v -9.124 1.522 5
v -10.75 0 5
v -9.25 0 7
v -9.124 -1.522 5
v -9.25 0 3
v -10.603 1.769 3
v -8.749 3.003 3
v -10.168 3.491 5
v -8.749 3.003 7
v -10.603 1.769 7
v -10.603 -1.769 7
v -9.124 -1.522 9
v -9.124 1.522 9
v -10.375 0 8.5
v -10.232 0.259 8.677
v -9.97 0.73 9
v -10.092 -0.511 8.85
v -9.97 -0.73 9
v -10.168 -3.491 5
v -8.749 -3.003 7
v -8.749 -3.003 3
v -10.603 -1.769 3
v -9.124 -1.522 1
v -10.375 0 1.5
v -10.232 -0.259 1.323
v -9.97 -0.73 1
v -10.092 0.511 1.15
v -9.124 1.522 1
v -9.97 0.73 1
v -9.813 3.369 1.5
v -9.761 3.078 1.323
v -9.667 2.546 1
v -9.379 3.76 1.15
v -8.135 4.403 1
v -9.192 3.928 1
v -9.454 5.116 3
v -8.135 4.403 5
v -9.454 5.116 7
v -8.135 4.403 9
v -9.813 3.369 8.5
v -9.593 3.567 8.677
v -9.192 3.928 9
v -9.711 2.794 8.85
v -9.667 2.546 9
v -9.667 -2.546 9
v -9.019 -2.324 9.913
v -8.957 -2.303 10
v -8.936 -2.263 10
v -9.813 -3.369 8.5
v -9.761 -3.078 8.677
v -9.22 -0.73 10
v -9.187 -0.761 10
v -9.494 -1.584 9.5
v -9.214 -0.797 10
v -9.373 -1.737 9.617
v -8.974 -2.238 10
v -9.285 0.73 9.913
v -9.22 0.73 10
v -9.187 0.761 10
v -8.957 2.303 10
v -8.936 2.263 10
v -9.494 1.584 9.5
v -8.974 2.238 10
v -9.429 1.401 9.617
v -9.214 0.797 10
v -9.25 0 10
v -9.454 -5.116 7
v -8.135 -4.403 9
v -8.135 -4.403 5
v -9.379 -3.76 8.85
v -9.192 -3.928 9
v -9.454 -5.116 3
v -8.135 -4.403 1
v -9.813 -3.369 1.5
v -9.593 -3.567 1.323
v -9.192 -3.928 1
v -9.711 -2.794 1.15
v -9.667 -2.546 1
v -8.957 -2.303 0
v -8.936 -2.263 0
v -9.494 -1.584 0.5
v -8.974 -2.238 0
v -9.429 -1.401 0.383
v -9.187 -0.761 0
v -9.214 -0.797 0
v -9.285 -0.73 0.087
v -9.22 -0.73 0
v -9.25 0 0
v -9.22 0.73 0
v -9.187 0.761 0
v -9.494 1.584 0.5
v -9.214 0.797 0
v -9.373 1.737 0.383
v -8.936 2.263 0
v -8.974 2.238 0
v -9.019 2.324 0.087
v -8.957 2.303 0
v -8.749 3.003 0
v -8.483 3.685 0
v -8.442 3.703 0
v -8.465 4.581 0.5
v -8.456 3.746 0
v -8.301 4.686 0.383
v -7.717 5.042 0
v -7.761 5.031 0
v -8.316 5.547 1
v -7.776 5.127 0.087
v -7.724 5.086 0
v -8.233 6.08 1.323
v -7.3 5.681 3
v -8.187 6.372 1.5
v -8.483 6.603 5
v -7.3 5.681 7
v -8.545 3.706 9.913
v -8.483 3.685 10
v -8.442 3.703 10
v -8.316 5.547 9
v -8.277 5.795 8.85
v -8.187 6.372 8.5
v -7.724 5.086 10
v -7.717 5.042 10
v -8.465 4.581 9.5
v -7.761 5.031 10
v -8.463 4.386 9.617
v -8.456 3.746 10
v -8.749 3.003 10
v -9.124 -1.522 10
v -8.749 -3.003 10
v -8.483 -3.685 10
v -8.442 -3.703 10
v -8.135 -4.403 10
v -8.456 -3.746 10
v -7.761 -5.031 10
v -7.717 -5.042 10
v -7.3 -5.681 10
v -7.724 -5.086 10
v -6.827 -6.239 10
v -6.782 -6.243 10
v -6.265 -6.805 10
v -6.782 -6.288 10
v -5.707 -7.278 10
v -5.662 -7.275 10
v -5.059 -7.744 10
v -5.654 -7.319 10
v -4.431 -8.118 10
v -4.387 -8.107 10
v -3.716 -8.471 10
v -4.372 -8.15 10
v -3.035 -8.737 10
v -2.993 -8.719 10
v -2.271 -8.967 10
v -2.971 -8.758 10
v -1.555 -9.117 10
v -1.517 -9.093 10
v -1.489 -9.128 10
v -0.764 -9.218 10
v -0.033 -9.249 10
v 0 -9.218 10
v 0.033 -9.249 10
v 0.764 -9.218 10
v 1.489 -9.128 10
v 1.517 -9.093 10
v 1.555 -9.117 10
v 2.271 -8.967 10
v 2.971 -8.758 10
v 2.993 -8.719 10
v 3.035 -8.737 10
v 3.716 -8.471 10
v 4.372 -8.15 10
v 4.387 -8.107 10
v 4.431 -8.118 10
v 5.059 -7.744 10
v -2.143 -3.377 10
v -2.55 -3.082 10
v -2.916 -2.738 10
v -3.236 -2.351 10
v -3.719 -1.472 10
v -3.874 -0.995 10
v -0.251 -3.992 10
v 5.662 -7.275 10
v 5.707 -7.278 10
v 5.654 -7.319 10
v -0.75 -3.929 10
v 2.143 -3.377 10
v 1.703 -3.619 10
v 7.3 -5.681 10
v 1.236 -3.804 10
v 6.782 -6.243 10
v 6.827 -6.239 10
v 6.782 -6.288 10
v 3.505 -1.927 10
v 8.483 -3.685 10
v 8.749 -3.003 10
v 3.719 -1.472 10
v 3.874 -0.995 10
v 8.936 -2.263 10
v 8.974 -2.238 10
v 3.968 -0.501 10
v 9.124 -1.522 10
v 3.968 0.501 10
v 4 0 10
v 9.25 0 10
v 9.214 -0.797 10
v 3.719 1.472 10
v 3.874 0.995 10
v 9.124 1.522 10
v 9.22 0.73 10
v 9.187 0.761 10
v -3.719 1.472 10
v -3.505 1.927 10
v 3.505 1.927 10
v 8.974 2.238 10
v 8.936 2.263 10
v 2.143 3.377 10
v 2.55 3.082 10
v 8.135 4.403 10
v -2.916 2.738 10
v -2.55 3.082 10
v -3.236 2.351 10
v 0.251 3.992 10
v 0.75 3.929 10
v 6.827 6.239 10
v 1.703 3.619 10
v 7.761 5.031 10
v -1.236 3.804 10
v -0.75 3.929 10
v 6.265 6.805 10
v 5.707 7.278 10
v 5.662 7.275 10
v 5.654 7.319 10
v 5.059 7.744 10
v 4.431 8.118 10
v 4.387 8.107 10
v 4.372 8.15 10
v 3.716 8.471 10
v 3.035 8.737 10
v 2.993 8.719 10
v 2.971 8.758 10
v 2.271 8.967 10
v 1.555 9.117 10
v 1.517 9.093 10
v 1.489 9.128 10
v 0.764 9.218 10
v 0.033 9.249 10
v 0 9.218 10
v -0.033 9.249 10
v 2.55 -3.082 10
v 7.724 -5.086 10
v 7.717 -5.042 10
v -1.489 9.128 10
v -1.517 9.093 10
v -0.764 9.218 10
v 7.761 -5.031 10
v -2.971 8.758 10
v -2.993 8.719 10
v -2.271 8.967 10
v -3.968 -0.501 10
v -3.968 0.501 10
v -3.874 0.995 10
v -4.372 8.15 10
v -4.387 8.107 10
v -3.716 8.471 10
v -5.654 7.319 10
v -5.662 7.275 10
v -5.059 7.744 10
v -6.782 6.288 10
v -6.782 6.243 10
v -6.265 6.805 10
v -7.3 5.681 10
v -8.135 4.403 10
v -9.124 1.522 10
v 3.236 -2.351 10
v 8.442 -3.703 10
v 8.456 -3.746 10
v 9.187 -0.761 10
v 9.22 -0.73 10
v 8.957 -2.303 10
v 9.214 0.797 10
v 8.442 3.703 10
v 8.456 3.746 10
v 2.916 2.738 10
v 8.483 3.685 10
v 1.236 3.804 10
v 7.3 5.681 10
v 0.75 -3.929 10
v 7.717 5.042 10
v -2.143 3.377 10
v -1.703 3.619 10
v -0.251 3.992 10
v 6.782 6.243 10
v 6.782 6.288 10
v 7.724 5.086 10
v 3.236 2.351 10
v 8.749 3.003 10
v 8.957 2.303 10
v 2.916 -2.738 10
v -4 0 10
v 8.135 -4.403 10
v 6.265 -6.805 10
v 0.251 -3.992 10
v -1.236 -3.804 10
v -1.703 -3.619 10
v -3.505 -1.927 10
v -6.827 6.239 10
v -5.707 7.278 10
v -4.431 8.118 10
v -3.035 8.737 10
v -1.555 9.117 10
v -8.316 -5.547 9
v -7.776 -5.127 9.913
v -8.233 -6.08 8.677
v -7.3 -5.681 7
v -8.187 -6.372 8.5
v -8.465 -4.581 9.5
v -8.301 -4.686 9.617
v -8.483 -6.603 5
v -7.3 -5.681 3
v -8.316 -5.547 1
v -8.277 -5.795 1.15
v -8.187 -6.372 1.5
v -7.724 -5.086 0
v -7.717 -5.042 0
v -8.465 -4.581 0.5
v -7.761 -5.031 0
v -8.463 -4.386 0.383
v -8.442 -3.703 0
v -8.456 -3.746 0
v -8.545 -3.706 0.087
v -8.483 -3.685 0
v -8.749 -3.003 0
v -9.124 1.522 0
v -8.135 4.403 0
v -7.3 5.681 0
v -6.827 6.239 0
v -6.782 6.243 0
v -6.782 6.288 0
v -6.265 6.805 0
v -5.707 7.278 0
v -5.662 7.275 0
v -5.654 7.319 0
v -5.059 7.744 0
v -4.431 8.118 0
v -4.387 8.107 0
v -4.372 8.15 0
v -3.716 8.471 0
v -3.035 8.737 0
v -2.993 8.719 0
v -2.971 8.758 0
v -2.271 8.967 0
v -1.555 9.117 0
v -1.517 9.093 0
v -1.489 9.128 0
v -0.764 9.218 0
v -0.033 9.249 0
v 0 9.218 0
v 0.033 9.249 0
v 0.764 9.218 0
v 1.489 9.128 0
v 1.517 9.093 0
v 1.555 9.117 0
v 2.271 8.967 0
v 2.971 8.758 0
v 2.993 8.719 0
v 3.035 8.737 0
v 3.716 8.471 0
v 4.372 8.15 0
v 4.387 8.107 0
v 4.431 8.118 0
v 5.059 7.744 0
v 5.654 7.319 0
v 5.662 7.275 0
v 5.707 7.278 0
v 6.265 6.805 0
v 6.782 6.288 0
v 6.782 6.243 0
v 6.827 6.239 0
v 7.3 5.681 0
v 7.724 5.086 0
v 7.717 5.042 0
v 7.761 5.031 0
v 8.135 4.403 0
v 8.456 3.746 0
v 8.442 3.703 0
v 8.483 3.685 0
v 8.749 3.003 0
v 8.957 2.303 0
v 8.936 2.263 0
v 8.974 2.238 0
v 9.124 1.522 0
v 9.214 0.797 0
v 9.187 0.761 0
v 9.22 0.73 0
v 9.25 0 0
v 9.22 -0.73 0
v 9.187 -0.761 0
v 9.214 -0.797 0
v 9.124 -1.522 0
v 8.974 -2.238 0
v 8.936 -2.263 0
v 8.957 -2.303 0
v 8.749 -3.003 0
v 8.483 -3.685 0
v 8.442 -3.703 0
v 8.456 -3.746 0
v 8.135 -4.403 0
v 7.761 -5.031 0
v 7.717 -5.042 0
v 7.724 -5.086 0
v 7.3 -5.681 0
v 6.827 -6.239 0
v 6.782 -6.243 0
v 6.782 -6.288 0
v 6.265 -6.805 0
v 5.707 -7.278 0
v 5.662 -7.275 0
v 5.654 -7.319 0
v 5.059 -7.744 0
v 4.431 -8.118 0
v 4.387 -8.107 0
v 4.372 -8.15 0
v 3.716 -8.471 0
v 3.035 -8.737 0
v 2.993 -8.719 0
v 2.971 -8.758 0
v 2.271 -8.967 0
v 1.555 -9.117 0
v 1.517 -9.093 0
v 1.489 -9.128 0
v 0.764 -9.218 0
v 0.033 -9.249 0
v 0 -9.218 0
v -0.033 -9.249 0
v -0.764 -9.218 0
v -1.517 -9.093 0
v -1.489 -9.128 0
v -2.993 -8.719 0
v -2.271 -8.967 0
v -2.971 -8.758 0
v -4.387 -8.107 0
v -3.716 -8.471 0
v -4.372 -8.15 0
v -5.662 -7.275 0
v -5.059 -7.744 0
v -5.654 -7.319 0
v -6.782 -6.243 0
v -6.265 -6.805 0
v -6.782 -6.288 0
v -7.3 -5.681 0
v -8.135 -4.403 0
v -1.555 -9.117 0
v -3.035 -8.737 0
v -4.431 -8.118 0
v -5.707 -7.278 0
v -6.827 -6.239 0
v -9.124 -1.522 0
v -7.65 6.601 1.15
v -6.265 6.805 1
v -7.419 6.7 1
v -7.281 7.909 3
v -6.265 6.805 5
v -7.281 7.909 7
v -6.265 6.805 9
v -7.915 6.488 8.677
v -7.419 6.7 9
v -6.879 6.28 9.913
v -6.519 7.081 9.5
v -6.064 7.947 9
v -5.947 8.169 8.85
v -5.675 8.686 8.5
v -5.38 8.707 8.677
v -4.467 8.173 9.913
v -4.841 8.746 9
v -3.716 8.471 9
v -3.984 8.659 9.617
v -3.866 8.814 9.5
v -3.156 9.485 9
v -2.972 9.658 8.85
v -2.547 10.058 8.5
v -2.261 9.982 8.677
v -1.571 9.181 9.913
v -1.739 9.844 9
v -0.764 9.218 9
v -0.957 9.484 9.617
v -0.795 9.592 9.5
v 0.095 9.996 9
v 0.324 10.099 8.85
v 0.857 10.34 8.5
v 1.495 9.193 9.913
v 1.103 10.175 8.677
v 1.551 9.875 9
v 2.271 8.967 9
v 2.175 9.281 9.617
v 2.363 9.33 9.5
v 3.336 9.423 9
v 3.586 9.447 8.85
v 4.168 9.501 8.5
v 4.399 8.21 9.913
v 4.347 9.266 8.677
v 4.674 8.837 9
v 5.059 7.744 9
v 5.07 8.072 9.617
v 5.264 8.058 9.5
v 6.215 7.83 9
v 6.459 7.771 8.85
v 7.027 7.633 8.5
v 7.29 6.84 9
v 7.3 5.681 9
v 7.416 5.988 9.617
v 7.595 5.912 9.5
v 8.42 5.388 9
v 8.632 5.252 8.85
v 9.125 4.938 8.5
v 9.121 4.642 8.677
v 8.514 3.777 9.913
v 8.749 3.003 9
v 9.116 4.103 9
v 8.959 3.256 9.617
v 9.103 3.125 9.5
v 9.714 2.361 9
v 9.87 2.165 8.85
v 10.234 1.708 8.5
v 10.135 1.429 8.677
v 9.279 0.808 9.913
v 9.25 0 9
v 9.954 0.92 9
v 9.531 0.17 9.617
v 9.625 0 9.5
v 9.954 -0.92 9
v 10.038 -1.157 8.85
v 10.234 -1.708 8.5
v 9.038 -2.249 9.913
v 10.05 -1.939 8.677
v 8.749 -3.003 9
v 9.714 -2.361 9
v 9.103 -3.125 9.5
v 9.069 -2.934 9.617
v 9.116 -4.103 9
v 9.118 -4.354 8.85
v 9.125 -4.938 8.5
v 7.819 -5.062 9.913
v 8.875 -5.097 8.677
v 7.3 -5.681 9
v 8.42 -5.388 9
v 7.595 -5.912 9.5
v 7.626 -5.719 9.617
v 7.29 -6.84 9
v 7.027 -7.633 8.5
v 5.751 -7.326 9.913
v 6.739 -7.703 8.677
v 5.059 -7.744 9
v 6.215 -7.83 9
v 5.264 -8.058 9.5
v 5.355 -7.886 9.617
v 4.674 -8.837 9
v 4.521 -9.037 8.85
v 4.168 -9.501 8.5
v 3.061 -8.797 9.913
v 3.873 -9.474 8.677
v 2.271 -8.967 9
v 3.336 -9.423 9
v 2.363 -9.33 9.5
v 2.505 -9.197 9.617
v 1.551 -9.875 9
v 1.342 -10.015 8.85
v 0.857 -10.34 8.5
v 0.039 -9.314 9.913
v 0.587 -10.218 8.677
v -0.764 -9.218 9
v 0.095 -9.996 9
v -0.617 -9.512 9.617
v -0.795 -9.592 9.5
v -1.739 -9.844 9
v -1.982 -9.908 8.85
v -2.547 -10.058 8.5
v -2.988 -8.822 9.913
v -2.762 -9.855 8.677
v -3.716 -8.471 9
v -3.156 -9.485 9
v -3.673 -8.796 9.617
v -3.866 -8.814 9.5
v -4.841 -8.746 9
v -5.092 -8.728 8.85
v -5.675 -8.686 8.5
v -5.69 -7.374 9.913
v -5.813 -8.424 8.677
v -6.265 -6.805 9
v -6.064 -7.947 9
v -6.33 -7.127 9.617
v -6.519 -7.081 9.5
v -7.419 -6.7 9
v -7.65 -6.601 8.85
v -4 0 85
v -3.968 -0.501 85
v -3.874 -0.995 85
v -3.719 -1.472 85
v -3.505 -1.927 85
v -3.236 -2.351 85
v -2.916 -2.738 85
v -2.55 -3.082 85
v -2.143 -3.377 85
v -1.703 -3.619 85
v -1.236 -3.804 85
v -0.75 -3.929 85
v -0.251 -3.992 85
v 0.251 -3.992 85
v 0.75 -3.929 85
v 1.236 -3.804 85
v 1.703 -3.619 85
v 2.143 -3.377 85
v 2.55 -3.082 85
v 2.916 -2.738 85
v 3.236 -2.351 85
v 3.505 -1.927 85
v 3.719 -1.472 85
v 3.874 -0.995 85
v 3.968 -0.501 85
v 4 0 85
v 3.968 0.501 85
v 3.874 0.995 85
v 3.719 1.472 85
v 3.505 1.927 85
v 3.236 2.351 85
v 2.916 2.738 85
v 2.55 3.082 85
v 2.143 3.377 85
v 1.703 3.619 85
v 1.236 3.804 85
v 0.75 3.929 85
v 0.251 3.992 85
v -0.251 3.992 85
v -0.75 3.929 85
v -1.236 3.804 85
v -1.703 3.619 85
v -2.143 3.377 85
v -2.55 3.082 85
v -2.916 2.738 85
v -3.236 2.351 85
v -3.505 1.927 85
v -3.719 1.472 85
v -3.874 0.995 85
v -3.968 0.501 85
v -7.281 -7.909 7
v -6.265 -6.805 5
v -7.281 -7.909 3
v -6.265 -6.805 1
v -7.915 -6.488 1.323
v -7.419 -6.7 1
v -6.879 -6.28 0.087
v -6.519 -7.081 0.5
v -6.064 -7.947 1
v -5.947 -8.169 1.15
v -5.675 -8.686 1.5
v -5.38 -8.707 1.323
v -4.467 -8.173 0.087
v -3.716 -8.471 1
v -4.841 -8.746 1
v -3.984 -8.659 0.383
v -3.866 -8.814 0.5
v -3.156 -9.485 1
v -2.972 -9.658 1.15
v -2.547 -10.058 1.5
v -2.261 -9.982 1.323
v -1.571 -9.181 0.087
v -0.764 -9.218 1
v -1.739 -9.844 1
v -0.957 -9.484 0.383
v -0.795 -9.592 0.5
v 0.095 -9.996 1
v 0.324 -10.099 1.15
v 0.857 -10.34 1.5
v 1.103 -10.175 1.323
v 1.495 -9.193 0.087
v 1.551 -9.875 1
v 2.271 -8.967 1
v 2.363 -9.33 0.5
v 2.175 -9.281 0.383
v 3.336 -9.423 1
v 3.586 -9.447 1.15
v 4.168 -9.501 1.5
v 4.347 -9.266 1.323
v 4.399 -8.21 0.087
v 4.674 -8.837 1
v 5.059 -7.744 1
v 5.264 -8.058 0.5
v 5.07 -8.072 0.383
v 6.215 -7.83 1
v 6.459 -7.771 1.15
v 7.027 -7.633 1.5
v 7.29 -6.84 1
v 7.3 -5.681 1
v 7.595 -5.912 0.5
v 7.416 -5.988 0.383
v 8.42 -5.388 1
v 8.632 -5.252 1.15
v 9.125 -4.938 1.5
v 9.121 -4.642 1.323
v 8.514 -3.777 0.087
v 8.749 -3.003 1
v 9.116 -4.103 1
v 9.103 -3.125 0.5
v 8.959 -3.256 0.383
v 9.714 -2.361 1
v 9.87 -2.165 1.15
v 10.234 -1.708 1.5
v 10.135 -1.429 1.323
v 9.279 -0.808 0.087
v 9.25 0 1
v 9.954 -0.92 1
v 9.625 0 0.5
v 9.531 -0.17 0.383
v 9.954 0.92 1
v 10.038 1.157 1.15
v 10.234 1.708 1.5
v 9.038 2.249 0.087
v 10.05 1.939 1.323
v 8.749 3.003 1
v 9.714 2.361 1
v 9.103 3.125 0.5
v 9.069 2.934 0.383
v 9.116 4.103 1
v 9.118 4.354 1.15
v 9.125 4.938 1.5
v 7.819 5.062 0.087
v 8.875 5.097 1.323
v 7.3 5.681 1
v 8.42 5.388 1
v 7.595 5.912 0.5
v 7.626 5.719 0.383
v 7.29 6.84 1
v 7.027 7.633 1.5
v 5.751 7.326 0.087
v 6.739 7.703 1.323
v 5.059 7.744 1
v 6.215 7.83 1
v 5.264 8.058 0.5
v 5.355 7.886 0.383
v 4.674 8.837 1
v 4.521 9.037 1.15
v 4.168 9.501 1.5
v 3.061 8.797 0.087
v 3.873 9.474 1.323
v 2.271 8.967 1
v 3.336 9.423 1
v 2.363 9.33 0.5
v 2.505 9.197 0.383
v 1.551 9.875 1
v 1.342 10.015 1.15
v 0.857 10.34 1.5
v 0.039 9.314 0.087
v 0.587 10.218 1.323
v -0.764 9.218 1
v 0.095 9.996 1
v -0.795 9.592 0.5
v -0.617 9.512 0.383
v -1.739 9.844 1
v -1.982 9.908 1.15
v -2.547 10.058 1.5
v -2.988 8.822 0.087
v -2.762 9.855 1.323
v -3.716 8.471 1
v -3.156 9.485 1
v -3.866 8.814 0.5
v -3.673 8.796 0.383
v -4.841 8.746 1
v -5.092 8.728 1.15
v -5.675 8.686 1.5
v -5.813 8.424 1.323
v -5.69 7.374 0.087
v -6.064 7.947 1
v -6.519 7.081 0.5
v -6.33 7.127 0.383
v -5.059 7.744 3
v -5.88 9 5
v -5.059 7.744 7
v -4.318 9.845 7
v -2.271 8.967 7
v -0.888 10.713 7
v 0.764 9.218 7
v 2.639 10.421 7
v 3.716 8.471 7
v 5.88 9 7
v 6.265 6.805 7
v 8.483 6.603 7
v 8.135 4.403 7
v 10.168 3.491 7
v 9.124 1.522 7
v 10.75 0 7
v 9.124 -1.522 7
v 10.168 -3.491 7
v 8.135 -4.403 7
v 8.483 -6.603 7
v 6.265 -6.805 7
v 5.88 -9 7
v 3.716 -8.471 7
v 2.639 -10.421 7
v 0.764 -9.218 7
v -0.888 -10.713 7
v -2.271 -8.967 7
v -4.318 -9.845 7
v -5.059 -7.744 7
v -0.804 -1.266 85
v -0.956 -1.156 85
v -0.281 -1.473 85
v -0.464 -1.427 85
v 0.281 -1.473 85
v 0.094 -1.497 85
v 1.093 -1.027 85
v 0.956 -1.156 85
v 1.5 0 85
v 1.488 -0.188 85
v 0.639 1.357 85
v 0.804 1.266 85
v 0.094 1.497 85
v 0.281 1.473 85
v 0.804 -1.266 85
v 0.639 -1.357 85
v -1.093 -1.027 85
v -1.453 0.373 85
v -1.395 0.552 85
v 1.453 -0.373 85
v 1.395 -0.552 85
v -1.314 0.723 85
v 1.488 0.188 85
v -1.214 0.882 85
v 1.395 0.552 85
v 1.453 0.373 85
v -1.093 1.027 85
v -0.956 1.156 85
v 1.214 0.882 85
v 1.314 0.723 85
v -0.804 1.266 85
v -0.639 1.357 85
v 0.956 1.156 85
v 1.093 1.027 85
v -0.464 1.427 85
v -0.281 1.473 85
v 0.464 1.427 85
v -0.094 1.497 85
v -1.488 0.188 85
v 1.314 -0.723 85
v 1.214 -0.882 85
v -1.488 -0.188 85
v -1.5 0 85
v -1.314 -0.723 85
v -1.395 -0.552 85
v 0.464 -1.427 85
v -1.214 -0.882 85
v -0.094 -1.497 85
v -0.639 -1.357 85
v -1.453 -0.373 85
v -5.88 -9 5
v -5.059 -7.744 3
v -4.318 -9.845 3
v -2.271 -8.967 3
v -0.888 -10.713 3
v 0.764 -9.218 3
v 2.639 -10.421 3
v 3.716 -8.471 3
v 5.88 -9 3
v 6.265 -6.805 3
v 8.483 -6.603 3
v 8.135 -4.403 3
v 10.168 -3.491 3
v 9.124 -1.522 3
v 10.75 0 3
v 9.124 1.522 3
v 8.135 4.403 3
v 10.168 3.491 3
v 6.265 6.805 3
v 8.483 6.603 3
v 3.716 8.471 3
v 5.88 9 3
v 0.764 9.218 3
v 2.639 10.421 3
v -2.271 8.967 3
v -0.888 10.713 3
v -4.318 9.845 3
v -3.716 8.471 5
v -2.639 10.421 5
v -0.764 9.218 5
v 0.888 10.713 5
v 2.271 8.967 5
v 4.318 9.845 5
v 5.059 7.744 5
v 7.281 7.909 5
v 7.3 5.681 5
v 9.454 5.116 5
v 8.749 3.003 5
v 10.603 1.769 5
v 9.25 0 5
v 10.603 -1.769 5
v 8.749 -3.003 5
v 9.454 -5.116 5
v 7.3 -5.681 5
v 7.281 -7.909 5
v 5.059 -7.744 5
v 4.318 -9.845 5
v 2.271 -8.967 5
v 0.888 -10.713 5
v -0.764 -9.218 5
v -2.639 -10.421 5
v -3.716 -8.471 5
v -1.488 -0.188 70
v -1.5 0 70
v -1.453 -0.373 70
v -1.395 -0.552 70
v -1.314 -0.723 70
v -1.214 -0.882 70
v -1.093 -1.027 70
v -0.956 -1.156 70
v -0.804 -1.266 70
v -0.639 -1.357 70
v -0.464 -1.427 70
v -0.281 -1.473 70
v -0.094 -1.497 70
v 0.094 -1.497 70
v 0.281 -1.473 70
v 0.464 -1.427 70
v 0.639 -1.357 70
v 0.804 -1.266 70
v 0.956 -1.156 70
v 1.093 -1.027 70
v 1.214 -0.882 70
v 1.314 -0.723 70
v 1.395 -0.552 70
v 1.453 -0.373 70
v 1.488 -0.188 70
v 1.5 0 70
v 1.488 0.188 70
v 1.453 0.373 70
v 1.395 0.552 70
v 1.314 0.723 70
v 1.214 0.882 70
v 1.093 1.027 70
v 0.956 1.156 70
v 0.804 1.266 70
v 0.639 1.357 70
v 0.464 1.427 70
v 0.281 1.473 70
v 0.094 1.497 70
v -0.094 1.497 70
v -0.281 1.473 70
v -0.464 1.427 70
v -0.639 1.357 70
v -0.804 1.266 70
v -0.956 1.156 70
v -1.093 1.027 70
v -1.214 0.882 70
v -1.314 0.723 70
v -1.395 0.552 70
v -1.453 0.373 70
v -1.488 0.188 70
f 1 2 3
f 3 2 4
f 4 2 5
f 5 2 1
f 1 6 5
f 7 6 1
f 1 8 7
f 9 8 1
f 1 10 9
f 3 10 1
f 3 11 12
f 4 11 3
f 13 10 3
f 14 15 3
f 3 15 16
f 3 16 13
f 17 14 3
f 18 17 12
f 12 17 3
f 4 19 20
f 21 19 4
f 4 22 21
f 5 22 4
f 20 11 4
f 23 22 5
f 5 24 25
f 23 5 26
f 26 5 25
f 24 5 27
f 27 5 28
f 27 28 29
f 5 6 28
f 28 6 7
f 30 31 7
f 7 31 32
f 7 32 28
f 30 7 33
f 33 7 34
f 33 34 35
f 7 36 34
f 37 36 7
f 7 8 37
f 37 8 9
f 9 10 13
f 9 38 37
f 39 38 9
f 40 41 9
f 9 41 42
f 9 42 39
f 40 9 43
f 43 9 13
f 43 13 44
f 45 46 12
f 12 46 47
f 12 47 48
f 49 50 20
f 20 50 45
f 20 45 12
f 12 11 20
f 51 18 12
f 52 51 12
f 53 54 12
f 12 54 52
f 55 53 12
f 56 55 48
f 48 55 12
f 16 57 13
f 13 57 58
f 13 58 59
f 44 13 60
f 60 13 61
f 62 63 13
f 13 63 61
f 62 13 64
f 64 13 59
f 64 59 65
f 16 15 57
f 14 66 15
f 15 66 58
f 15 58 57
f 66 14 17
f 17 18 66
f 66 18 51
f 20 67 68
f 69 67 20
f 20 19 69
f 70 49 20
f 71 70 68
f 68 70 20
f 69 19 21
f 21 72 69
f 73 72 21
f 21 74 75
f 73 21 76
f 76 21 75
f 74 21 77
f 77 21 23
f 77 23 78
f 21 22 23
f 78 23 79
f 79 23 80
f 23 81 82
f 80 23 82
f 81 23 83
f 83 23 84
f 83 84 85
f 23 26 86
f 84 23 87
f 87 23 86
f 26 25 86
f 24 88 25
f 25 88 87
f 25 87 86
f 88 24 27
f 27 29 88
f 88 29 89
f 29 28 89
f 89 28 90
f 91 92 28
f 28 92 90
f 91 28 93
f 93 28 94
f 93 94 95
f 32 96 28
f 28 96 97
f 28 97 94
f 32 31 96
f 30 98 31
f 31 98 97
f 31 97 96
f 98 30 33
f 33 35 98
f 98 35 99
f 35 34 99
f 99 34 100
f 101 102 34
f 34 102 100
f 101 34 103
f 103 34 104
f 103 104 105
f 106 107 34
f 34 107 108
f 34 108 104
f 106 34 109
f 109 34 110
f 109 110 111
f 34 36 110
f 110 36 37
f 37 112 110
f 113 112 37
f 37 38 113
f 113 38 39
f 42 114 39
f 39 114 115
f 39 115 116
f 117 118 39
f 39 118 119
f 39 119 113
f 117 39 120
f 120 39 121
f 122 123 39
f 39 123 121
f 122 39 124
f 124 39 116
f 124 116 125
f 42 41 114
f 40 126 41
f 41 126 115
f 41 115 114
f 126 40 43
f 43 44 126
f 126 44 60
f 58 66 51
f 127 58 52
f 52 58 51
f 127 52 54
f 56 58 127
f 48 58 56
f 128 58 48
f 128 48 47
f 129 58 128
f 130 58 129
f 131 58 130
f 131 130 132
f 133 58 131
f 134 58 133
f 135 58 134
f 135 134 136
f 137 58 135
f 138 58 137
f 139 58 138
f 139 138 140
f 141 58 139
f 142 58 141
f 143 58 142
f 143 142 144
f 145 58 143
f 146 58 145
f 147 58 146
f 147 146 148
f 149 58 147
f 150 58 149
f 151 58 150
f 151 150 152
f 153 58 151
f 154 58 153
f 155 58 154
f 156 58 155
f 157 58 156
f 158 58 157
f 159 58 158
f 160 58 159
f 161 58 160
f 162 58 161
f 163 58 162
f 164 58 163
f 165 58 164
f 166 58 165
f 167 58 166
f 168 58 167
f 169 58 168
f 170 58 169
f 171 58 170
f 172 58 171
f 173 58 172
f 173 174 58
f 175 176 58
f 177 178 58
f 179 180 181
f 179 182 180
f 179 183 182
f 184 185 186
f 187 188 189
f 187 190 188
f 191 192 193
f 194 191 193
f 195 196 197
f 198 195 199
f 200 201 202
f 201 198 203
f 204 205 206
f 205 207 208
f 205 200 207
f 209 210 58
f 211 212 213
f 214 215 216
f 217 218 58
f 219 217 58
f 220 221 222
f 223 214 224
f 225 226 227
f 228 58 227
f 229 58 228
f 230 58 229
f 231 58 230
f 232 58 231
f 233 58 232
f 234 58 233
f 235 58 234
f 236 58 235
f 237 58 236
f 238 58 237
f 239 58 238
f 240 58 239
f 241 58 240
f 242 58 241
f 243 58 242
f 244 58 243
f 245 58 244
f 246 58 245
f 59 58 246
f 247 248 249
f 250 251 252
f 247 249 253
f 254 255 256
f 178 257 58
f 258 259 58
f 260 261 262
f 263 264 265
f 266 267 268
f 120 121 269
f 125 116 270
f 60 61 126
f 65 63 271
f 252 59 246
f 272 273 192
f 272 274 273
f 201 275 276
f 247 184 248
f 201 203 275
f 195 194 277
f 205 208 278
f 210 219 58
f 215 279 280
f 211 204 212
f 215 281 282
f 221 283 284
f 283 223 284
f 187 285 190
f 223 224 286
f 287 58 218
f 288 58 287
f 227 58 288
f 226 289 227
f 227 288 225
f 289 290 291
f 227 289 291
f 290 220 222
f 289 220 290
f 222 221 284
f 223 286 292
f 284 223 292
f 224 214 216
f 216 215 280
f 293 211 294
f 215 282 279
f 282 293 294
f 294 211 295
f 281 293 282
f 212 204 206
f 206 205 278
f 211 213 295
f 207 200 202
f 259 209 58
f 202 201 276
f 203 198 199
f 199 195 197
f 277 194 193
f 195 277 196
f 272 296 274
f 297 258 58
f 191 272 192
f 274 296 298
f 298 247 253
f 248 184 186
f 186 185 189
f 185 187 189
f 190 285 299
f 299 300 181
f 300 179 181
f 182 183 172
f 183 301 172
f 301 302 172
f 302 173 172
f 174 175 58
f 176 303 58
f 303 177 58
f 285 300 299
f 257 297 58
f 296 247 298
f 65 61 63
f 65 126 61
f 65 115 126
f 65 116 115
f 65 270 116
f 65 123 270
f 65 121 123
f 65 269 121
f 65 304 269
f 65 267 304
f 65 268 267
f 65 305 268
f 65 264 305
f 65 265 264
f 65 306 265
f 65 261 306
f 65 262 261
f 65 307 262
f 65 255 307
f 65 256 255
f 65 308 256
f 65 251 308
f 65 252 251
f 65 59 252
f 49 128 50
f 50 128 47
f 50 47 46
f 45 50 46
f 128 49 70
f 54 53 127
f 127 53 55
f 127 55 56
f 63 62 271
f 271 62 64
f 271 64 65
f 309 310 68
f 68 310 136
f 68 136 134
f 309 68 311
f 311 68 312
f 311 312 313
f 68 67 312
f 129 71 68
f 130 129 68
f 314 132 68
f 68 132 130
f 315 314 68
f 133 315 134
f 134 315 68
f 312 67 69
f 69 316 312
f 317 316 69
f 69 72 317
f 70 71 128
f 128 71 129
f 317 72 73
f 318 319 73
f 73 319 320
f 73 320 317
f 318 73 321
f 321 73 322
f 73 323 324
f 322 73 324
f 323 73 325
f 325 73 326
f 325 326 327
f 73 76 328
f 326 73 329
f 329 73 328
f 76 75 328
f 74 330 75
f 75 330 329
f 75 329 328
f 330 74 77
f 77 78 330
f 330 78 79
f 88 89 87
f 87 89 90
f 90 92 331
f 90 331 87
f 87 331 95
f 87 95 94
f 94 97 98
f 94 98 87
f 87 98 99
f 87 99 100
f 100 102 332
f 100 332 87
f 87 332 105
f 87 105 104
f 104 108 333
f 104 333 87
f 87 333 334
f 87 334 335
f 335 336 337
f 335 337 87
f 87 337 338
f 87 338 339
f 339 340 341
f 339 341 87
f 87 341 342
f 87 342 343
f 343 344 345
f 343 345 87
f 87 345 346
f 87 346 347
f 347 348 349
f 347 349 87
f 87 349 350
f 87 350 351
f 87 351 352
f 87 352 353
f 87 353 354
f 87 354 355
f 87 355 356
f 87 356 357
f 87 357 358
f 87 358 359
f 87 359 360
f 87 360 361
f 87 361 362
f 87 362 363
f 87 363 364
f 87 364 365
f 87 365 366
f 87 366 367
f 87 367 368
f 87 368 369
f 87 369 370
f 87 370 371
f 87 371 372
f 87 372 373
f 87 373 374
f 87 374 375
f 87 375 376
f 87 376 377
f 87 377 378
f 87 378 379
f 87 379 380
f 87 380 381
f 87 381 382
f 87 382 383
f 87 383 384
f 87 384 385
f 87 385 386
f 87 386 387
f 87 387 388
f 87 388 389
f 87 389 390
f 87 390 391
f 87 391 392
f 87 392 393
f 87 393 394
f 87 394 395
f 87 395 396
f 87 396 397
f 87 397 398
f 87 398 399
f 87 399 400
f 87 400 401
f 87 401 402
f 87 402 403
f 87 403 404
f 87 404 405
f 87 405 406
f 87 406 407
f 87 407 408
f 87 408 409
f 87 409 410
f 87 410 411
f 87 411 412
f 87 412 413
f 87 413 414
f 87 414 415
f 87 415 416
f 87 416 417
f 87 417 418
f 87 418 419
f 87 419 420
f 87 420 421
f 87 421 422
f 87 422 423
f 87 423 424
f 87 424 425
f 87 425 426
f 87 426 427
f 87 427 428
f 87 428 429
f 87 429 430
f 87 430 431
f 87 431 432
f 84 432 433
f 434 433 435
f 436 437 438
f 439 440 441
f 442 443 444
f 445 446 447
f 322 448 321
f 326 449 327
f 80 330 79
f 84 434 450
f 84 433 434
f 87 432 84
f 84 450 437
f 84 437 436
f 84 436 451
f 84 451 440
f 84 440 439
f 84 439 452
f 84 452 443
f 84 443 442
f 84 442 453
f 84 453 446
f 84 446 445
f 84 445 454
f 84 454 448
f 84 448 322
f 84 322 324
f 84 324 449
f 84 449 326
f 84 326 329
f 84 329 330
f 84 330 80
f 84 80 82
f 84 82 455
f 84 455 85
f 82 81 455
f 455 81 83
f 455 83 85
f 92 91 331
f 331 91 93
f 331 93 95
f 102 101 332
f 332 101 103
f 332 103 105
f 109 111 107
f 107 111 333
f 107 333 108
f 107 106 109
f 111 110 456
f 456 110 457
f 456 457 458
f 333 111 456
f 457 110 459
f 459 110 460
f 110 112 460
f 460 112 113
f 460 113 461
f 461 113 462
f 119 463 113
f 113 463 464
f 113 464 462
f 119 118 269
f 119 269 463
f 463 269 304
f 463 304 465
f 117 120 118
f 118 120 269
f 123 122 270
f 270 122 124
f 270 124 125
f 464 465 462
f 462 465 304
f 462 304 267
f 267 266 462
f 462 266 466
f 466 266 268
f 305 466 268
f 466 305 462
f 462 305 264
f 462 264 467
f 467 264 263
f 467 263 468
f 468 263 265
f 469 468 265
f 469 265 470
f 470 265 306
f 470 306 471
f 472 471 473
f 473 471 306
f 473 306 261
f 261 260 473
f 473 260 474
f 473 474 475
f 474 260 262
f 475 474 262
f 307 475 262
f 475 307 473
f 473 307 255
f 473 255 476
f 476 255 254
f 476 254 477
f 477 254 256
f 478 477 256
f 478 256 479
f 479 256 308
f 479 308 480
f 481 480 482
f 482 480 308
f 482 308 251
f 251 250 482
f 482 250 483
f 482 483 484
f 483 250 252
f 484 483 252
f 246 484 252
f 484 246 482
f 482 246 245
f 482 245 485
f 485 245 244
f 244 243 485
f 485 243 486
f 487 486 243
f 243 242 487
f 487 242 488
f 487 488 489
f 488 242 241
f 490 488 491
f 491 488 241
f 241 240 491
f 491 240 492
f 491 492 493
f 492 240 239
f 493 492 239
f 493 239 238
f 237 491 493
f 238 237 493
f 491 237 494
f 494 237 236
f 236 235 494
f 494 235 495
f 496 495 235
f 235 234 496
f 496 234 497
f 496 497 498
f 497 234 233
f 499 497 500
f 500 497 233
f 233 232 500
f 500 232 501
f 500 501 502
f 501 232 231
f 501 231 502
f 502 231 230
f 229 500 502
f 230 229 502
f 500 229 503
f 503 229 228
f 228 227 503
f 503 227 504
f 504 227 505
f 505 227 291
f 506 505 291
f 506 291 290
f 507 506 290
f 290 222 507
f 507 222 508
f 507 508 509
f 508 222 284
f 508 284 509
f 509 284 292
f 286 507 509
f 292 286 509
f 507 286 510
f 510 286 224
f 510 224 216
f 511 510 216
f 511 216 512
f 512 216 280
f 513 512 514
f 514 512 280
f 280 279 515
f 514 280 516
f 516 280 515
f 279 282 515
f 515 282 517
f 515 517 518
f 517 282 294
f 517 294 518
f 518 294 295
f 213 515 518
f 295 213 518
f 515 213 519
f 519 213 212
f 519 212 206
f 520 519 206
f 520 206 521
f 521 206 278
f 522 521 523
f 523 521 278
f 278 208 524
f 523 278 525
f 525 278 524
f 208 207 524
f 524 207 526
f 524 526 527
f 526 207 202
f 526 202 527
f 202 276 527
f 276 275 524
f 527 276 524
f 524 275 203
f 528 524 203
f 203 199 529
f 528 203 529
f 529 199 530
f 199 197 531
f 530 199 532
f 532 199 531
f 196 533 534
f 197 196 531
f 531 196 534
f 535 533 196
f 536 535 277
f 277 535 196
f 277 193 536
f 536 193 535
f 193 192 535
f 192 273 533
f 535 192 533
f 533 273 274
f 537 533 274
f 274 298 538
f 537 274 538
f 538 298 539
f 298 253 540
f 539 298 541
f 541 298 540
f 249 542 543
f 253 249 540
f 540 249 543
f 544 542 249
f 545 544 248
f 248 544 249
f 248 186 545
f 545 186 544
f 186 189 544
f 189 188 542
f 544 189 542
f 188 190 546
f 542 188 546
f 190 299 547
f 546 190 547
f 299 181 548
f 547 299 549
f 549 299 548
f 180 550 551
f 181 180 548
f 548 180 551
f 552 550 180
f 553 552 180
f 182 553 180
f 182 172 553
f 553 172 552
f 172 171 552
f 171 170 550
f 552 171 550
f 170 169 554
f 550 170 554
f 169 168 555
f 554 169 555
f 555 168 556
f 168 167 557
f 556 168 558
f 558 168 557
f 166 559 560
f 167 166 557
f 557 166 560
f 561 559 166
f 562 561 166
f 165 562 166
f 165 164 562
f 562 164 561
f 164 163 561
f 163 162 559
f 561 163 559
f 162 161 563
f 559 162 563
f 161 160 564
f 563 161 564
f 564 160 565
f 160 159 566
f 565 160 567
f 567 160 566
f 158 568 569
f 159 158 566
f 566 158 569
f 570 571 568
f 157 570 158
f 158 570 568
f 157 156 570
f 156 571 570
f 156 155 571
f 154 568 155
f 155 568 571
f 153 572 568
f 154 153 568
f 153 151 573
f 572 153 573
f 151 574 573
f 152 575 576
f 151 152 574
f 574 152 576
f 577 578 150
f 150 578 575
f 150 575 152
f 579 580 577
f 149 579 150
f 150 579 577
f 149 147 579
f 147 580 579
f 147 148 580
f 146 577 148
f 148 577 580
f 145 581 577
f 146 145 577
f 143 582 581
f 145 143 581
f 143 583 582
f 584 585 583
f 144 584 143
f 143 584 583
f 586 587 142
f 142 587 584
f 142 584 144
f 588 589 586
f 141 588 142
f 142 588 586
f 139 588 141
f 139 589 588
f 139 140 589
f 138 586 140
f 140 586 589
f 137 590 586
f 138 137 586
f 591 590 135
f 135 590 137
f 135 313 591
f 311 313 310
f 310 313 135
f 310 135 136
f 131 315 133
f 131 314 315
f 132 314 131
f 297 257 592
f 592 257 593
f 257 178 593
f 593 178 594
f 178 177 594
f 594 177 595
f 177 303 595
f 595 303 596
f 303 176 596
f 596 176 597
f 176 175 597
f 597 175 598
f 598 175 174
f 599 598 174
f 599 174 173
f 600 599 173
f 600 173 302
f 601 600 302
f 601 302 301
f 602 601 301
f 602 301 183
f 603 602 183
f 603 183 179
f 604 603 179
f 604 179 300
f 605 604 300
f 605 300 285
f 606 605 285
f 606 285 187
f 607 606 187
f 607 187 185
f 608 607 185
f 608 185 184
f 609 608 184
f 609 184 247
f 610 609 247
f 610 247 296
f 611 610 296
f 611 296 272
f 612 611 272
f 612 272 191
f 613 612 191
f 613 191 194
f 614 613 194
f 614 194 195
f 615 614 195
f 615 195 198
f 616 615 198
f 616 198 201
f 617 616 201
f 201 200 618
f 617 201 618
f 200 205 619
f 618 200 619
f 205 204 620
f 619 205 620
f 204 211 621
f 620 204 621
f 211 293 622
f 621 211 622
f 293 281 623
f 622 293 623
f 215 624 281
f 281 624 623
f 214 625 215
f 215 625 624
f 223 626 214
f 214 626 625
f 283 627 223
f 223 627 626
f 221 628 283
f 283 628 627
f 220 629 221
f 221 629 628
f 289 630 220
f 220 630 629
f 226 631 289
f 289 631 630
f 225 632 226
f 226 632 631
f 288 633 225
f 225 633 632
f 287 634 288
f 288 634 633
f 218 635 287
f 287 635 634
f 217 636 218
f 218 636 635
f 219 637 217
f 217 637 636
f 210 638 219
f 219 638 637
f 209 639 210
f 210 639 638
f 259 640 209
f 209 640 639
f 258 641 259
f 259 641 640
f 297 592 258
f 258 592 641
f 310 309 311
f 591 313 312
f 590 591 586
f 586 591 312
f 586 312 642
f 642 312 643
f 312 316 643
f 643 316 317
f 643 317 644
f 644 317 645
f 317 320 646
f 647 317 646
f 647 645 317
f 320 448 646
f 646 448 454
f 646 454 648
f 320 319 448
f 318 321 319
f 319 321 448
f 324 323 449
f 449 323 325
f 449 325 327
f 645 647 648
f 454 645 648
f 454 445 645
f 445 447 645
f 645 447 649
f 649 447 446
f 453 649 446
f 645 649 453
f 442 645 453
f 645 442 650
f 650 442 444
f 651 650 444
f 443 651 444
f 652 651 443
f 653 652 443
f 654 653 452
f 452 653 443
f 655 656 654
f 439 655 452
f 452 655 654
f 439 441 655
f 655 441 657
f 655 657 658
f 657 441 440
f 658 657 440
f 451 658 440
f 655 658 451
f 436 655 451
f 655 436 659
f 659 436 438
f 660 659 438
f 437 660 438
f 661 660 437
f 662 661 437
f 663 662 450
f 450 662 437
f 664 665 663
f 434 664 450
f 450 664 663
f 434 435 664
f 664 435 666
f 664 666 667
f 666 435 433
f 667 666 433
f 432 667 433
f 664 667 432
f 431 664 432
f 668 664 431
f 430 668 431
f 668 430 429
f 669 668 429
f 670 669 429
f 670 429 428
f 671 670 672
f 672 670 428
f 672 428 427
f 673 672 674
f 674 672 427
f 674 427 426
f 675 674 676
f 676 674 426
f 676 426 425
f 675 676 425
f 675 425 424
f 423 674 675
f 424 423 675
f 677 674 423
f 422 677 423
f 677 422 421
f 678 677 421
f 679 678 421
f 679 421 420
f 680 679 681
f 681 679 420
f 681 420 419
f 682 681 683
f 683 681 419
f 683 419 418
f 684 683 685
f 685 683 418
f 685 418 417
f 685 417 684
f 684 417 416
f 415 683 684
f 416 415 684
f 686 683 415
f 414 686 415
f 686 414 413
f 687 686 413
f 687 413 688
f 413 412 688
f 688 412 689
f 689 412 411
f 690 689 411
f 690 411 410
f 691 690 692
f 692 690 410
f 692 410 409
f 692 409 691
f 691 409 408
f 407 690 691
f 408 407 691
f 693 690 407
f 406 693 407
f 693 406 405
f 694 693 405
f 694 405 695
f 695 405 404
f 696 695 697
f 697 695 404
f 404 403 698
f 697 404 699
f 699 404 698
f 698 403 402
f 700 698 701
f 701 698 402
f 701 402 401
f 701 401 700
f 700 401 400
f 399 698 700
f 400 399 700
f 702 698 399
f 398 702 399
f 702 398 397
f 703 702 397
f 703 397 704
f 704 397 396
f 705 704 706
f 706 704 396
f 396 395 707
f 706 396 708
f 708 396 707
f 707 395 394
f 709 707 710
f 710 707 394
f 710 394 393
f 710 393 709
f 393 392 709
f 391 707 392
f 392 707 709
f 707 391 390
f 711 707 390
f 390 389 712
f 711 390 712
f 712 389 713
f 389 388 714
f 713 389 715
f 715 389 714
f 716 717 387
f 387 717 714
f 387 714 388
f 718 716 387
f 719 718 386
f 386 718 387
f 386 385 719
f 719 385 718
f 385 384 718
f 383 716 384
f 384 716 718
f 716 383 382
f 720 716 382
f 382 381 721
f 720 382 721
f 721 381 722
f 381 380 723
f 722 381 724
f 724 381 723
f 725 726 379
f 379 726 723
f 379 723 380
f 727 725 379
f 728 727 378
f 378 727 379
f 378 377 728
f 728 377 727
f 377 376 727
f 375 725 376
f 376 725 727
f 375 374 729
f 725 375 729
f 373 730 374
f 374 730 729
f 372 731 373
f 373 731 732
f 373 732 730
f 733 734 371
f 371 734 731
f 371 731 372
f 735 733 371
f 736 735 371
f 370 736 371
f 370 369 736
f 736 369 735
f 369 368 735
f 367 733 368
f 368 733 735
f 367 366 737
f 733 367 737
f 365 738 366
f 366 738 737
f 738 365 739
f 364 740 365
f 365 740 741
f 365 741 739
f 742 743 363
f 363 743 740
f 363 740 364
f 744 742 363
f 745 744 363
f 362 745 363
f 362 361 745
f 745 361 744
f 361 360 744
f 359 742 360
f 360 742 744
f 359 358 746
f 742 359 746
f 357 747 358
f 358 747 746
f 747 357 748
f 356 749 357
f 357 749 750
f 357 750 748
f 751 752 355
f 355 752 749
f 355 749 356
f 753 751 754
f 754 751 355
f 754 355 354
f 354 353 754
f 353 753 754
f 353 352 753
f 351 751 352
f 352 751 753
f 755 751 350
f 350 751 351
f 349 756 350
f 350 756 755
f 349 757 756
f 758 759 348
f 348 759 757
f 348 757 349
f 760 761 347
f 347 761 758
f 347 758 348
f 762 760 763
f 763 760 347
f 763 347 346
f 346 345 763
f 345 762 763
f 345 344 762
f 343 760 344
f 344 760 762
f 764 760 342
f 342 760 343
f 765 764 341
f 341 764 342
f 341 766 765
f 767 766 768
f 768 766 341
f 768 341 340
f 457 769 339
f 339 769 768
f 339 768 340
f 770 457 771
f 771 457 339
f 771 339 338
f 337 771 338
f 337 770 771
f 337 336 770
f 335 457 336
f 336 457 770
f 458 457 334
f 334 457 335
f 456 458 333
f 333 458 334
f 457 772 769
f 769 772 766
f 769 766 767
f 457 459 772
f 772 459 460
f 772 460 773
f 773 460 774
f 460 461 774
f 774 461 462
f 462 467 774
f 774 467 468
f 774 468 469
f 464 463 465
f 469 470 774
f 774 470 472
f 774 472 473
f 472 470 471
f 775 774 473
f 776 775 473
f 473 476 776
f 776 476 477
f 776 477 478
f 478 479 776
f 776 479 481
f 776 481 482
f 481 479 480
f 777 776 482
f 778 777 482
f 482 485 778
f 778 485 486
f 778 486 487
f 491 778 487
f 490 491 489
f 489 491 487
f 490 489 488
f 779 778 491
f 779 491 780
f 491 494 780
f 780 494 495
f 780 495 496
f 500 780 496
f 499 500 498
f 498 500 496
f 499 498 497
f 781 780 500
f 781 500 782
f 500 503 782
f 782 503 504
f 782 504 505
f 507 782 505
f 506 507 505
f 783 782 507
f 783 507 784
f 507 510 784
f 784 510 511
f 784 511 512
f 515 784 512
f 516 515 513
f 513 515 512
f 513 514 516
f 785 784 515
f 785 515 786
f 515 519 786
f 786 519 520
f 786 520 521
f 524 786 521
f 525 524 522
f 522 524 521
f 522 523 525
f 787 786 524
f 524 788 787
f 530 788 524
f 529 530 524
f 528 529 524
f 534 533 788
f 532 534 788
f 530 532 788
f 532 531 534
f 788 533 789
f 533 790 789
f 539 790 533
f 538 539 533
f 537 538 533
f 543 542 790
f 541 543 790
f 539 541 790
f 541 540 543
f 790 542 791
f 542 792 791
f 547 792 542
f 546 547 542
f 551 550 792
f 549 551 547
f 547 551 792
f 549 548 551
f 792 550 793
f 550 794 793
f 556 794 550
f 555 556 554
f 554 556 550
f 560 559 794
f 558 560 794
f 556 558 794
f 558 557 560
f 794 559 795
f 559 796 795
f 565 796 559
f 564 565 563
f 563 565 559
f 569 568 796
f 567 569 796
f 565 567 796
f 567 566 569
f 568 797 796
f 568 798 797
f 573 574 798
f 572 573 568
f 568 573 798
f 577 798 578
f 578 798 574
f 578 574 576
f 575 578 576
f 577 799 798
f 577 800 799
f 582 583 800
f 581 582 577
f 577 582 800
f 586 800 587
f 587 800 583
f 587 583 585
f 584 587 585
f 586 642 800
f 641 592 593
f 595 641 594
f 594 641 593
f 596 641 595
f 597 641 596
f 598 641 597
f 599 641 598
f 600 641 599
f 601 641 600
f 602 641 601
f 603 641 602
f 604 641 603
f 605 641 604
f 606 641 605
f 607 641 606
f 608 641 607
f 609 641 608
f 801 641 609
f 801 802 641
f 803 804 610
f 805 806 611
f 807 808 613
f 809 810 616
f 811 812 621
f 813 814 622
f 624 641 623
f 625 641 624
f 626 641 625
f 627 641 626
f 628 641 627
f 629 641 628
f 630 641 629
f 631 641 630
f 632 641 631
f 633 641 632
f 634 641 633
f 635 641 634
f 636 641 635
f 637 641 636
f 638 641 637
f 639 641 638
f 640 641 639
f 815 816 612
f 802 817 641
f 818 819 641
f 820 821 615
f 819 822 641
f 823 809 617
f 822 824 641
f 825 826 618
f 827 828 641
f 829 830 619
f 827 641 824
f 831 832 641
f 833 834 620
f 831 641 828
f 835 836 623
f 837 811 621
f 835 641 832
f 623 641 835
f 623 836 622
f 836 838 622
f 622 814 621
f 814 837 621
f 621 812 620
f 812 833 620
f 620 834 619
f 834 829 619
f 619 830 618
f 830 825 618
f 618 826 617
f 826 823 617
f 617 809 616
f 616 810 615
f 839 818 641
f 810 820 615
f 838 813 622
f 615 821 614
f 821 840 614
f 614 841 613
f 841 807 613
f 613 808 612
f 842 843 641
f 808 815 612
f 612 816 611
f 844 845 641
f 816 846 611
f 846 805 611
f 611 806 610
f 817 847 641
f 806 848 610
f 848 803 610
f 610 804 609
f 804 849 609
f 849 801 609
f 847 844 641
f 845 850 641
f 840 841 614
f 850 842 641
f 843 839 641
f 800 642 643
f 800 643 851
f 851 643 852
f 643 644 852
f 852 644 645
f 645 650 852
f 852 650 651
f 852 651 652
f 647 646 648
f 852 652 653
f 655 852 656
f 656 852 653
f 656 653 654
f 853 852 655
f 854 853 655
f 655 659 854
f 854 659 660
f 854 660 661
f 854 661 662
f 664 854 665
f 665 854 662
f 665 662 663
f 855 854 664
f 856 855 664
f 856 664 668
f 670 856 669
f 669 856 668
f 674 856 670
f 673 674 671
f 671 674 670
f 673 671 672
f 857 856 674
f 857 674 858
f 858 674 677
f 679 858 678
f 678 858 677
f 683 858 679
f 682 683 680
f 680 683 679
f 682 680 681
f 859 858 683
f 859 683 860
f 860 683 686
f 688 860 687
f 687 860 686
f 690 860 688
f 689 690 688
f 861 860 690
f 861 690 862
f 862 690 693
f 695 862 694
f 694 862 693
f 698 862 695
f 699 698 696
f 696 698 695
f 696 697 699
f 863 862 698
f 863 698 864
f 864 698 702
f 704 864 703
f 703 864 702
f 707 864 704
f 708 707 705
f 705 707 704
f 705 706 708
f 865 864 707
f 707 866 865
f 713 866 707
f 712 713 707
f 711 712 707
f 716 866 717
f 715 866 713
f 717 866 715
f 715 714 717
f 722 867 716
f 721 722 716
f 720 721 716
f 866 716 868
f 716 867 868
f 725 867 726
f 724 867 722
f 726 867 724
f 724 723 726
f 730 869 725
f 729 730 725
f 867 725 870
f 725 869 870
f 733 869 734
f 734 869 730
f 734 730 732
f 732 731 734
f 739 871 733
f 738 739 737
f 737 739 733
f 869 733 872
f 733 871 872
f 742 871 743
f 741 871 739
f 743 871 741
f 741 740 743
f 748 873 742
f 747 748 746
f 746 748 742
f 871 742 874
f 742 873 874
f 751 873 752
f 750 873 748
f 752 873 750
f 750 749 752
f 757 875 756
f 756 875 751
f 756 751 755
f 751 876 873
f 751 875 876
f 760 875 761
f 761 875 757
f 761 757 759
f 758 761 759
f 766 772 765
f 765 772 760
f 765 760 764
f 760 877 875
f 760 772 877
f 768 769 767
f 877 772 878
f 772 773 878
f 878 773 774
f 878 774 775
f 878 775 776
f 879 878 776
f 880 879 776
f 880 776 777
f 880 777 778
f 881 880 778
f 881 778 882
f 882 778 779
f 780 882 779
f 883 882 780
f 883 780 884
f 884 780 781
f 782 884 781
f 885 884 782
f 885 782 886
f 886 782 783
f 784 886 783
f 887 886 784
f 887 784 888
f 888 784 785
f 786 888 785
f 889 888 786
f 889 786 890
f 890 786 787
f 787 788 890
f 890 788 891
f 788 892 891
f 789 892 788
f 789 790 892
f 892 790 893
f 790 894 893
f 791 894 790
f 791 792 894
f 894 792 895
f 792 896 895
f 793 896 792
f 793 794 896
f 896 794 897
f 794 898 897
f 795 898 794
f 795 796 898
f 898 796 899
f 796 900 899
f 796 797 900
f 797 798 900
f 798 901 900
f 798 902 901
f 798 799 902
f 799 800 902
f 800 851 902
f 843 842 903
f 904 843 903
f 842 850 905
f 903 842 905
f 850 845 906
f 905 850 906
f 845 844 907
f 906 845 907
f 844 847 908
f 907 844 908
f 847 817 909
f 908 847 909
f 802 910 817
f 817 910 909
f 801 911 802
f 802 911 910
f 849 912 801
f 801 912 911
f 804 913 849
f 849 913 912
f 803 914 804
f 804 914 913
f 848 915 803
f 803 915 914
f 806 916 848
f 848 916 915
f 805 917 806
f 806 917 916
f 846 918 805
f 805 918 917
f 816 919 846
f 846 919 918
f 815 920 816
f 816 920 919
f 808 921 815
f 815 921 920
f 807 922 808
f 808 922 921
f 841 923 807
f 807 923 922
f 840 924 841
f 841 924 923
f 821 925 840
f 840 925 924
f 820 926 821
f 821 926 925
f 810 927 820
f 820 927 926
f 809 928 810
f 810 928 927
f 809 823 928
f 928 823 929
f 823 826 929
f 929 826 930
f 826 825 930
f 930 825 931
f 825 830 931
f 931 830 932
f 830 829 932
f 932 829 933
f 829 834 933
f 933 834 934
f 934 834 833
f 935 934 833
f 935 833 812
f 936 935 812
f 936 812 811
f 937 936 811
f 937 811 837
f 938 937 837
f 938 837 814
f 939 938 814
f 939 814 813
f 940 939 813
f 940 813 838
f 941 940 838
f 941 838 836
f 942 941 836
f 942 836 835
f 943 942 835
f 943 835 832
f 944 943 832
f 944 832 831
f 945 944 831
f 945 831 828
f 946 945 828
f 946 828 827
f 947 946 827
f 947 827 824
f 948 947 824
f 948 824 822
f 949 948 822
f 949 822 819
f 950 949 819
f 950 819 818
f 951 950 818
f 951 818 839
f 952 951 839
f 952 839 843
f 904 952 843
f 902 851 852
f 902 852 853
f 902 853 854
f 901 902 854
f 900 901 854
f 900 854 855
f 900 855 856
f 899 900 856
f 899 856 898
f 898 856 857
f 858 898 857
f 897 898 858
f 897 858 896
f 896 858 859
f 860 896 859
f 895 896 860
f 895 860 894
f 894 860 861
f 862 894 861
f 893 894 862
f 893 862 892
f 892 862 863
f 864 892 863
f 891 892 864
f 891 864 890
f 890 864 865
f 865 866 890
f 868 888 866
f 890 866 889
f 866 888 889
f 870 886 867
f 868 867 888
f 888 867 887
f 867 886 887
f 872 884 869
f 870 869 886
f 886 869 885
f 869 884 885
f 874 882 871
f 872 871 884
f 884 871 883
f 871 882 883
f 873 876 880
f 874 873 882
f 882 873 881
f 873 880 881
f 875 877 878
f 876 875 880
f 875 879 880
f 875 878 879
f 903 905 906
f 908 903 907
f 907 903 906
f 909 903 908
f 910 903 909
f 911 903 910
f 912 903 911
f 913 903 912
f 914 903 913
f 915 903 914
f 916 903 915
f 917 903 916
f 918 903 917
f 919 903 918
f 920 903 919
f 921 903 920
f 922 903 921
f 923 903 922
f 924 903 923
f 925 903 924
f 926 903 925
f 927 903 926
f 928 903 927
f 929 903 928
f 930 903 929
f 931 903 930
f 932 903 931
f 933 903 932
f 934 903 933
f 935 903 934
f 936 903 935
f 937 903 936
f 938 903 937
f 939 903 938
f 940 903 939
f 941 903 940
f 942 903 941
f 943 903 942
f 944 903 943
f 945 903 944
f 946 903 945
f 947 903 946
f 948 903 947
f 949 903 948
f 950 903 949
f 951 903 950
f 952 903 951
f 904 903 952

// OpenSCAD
// file: openscad/knurledFinishLib.scad
/*
 * knurledFinishLib.scad
 * 
 * Written by aubenc @ Thingiverse
 *
 * This script is licensed under the Public Domain license.
 *
 * http://www.thingiverse.com/thing:9095
 *
 * Usage:
 *
 *    knurled_cyl( Knurled cylinder height,
 *                 Knurled cylinder outer diameter,
 *                 Knurl polyhedron width,
 *                 Knurl polyhedron height,
 *                 Knurl polyhedron depth,
 *                 Cylinder ends smoothed height,
 *                 Knurled surface smoothing amount );
 */
module knurled_cyl(chg, cod, cwd, csh, cdp, fsh, smt)
{
    cord=(cod+cdp+cdp*smt/100)/2;
    cird=cord-cdp;
    cfn=round(2*cird*PI/cwd);
    clf=360/cfn;
    crn=ceil(chg/csh);

    intersection()
    {
        shape(fsh, cird, cord-cdp*smt/100, cfn*4, chg);

        translate([0,0,-(crn*csh-chg)/2])
          knurled_finish(cord, cird, clf, csh, cfn, crn);
    }
}

module shape(hsh, ird, ord, fn4, hg)
{
        union()
        {
            cylinder(h=hsh, r1=ird, r2=ord, $fn=fn4, center=false);

            translate([0,0,hsh-0.002])
              cylinder(h=hg-2*hsh+0.004, r=ord, $fn=fn4, center=false);

            translate([0,0,hg-hsh])
              cylinder(h=hsh, r1=ord, r2=ird, $fn=fn4, center=false);
        }

}

module knurled_finish(ord, ird, lf, sh, fn, rn)
{
    for(j=[0:rn-1]) {
        h0=sh*j;
        h1=sh*(j+1/2);
        h2=sh*(j+1);
    
        for(i=[0:fn-1]) {
            lf0=lf*i;
            lf1=lf*(i+1/2);
            lf2=lf*(i+1);
        
            polyhedron(
                points=[
                     [ 0,0,h0],
                     [ ord*cos(lf0), ord*sin(lf0), h0],
                     [ ird*cos(lf1), ird*sin(lf1), h0],
                     [ ord*cos(lf2), ord*sin(lf2), h0],

                     [ ird*cos(lf0), ird*sin(lf0), h1],
                     [ ord*cos(lf1), ord*sin(lf1), h1],
                     [ ird*cos(lf2), ird*sin(lf2), h1],

                     [ 0,0,h2],
                     [ ord*cos(lf0), ord*sin(lf0), h2],
                     [ ird*cos(lf1), ird*sin(lf1), h2],
                     [ ord*cos(lf2), ord*sin(lf2), h2]
                    ],
                faces=[
                     [0,1,2],[2,3,0],
                     [1,0,4],[4,0,7],[7,8,4],
                     [8,7,9],[10,9,7],
                     [10,7,6],[6,7,0],[3,6,0],
                     [2,1,4],[3,2,6],[10,6,9],[8,9,4],
                     [4,5,2],[2,5,6],[6,5,9],[9,5,4]
                    ],
                convexity=5);
         }
    }
}
// main file
include <openscad/knurledFinishLib.scad>
// knob for z axis

$fn=5*10;


//Total Dial Length mm
Length=85;

//Thickness of the dial head in mm
Dial=10;

// Knob add ons
add ="knurled"; //[none,pointer,knurled]



if (add=="knurled")
{
  knurled_cyl(Dial, 20, 3, 4, 1.5, 2, 0);
} else {
  cylinder(h=Dial,r=10);
}

if (add=="pointer")
{
    translate([-9,-9,0]) linear_extrude(height=Dial) polygon(points=[[0,0],[7,0],[0,7]], paths=[[0,1,2]]);
}

difference () {
cylinder(h=Length,r=4);
translate([0,0,Length-15]) cylinder(h=20,r=1.5);
}
